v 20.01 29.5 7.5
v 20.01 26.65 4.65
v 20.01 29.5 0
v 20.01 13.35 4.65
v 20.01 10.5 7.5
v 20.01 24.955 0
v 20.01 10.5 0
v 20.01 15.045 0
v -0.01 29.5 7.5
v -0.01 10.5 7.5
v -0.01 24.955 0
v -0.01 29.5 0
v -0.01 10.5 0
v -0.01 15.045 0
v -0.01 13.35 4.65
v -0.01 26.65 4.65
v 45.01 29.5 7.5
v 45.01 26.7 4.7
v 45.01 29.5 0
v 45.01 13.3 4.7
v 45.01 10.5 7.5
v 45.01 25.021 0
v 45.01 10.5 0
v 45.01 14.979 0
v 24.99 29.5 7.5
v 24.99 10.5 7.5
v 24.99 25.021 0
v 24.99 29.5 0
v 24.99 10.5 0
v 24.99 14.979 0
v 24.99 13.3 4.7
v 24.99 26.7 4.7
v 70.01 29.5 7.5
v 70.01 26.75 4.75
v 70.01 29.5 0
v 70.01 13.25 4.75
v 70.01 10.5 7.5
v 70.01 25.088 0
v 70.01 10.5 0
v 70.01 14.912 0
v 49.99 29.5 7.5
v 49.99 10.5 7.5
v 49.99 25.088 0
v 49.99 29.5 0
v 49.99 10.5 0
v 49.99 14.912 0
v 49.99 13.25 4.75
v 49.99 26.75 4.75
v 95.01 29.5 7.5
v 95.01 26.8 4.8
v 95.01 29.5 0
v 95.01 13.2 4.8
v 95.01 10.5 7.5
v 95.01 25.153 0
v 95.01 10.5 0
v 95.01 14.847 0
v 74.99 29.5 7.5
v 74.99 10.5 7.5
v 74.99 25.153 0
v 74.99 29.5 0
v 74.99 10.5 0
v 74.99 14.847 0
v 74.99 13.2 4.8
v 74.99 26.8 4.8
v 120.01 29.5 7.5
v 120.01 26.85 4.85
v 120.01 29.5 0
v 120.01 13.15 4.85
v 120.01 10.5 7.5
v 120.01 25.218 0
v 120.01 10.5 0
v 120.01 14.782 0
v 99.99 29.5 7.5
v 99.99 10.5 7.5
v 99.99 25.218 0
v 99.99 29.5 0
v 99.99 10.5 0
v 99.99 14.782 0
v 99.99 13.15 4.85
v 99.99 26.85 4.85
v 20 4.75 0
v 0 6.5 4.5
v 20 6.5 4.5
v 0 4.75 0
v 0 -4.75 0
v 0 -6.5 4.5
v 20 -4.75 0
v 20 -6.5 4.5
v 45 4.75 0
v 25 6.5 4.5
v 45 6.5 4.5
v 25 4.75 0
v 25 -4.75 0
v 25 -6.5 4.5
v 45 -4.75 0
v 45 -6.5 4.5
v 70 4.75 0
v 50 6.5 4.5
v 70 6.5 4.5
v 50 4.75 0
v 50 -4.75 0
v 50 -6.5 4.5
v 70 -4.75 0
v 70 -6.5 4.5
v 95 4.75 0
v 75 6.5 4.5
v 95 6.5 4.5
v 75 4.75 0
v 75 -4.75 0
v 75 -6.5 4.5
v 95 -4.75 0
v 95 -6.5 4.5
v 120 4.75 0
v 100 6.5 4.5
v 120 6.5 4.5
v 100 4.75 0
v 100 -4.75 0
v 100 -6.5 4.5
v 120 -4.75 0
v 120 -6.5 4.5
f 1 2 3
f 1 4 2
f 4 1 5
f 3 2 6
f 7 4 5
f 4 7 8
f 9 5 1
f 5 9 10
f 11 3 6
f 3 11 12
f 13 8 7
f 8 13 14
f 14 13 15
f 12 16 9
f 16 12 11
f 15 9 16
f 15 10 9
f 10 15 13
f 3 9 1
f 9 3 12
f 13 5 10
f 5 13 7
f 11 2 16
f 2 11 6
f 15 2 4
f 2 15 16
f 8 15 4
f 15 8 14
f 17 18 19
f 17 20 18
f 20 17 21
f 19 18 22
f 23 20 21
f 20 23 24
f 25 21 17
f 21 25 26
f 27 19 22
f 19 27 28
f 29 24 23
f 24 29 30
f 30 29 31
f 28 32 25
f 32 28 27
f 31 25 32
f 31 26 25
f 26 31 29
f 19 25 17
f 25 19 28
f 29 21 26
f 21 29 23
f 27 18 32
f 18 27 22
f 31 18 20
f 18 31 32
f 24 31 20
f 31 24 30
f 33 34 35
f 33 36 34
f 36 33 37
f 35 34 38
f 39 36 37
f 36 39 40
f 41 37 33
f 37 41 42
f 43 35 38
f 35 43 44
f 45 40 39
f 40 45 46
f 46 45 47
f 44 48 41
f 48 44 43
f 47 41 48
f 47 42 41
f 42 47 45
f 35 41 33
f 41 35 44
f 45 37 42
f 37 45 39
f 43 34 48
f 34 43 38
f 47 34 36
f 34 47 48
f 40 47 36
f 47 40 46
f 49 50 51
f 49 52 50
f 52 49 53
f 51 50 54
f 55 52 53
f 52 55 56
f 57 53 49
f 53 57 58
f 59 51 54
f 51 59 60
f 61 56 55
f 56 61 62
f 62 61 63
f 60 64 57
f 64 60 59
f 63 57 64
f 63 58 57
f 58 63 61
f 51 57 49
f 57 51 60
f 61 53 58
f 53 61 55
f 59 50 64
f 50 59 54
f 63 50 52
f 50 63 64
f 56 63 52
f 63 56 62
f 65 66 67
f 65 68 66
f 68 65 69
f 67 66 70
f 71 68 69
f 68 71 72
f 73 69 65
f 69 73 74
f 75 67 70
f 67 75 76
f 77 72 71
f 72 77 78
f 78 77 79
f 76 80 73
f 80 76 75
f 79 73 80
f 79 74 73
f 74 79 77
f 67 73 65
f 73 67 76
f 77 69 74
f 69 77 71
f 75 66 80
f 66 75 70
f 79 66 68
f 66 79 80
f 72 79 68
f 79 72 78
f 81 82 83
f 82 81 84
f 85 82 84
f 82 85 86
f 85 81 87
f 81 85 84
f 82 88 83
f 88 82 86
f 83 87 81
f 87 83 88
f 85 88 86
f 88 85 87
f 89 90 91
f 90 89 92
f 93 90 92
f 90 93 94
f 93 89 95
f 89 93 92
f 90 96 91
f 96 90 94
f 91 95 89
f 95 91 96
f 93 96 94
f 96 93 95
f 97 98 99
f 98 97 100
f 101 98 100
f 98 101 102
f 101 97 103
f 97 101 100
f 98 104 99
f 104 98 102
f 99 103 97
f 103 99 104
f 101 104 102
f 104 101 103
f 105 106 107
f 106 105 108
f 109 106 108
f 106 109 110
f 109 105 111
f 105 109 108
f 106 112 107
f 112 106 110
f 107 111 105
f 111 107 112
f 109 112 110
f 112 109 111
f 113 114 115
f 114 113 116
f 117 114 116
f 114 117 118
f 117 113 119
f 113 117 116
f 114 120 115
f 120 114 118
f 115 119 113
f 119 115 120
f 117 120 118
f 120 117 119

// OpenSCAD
/*
  =============================================================================
  99_Teste_Tolerancias.scad - Cupom de Teste de Folgas FDM
  =============================================================================
  Gera 5 pares macho+fêmea com folgas progressivas:
    0.15, 0.20, 0.25, 0.30, 0.35 mm por lado
  
  Usa dovetail_male_x / dovetail_female_x corrigidos.
  
  RESULTADO: exatamente 10 COMPONENTES CONECTADOS no STL
  (5 machos + 5 fêmeas, todos com min Z = 0)
  =============================================================================
*/

include <00_Parametros.scad>;

clearances = [0.15, 0.20, 0.25, 0.30, 0.35];
test_length = 20.0;
spacing_x   = 25.0;

for (i = [0 : len(clearances) - 1]) {
  c = clearances[i];
  tx = i * spacing_x;

  // ====== MACHO ======
  translate([tx, 0, 0])
    dovetail_male_x(length=test_length);

  // ====== FÊMEA (bloco com canal cortado) ======
  translate([tx, 20, 0]) {
    difference() {
      // Bloco envoltório
      translate([-EPS, -(dovetail_width_top/2 + 3), 0])
        cube([test_length + EPS*2, dovetail_width_top + 6, dovetail_height + 3]);

      // Corte do canal com a folga de teste
      translate([0, 0, 0])
        dovetail_female_x(length=test_length, clearance=c);
    }
  }
}
